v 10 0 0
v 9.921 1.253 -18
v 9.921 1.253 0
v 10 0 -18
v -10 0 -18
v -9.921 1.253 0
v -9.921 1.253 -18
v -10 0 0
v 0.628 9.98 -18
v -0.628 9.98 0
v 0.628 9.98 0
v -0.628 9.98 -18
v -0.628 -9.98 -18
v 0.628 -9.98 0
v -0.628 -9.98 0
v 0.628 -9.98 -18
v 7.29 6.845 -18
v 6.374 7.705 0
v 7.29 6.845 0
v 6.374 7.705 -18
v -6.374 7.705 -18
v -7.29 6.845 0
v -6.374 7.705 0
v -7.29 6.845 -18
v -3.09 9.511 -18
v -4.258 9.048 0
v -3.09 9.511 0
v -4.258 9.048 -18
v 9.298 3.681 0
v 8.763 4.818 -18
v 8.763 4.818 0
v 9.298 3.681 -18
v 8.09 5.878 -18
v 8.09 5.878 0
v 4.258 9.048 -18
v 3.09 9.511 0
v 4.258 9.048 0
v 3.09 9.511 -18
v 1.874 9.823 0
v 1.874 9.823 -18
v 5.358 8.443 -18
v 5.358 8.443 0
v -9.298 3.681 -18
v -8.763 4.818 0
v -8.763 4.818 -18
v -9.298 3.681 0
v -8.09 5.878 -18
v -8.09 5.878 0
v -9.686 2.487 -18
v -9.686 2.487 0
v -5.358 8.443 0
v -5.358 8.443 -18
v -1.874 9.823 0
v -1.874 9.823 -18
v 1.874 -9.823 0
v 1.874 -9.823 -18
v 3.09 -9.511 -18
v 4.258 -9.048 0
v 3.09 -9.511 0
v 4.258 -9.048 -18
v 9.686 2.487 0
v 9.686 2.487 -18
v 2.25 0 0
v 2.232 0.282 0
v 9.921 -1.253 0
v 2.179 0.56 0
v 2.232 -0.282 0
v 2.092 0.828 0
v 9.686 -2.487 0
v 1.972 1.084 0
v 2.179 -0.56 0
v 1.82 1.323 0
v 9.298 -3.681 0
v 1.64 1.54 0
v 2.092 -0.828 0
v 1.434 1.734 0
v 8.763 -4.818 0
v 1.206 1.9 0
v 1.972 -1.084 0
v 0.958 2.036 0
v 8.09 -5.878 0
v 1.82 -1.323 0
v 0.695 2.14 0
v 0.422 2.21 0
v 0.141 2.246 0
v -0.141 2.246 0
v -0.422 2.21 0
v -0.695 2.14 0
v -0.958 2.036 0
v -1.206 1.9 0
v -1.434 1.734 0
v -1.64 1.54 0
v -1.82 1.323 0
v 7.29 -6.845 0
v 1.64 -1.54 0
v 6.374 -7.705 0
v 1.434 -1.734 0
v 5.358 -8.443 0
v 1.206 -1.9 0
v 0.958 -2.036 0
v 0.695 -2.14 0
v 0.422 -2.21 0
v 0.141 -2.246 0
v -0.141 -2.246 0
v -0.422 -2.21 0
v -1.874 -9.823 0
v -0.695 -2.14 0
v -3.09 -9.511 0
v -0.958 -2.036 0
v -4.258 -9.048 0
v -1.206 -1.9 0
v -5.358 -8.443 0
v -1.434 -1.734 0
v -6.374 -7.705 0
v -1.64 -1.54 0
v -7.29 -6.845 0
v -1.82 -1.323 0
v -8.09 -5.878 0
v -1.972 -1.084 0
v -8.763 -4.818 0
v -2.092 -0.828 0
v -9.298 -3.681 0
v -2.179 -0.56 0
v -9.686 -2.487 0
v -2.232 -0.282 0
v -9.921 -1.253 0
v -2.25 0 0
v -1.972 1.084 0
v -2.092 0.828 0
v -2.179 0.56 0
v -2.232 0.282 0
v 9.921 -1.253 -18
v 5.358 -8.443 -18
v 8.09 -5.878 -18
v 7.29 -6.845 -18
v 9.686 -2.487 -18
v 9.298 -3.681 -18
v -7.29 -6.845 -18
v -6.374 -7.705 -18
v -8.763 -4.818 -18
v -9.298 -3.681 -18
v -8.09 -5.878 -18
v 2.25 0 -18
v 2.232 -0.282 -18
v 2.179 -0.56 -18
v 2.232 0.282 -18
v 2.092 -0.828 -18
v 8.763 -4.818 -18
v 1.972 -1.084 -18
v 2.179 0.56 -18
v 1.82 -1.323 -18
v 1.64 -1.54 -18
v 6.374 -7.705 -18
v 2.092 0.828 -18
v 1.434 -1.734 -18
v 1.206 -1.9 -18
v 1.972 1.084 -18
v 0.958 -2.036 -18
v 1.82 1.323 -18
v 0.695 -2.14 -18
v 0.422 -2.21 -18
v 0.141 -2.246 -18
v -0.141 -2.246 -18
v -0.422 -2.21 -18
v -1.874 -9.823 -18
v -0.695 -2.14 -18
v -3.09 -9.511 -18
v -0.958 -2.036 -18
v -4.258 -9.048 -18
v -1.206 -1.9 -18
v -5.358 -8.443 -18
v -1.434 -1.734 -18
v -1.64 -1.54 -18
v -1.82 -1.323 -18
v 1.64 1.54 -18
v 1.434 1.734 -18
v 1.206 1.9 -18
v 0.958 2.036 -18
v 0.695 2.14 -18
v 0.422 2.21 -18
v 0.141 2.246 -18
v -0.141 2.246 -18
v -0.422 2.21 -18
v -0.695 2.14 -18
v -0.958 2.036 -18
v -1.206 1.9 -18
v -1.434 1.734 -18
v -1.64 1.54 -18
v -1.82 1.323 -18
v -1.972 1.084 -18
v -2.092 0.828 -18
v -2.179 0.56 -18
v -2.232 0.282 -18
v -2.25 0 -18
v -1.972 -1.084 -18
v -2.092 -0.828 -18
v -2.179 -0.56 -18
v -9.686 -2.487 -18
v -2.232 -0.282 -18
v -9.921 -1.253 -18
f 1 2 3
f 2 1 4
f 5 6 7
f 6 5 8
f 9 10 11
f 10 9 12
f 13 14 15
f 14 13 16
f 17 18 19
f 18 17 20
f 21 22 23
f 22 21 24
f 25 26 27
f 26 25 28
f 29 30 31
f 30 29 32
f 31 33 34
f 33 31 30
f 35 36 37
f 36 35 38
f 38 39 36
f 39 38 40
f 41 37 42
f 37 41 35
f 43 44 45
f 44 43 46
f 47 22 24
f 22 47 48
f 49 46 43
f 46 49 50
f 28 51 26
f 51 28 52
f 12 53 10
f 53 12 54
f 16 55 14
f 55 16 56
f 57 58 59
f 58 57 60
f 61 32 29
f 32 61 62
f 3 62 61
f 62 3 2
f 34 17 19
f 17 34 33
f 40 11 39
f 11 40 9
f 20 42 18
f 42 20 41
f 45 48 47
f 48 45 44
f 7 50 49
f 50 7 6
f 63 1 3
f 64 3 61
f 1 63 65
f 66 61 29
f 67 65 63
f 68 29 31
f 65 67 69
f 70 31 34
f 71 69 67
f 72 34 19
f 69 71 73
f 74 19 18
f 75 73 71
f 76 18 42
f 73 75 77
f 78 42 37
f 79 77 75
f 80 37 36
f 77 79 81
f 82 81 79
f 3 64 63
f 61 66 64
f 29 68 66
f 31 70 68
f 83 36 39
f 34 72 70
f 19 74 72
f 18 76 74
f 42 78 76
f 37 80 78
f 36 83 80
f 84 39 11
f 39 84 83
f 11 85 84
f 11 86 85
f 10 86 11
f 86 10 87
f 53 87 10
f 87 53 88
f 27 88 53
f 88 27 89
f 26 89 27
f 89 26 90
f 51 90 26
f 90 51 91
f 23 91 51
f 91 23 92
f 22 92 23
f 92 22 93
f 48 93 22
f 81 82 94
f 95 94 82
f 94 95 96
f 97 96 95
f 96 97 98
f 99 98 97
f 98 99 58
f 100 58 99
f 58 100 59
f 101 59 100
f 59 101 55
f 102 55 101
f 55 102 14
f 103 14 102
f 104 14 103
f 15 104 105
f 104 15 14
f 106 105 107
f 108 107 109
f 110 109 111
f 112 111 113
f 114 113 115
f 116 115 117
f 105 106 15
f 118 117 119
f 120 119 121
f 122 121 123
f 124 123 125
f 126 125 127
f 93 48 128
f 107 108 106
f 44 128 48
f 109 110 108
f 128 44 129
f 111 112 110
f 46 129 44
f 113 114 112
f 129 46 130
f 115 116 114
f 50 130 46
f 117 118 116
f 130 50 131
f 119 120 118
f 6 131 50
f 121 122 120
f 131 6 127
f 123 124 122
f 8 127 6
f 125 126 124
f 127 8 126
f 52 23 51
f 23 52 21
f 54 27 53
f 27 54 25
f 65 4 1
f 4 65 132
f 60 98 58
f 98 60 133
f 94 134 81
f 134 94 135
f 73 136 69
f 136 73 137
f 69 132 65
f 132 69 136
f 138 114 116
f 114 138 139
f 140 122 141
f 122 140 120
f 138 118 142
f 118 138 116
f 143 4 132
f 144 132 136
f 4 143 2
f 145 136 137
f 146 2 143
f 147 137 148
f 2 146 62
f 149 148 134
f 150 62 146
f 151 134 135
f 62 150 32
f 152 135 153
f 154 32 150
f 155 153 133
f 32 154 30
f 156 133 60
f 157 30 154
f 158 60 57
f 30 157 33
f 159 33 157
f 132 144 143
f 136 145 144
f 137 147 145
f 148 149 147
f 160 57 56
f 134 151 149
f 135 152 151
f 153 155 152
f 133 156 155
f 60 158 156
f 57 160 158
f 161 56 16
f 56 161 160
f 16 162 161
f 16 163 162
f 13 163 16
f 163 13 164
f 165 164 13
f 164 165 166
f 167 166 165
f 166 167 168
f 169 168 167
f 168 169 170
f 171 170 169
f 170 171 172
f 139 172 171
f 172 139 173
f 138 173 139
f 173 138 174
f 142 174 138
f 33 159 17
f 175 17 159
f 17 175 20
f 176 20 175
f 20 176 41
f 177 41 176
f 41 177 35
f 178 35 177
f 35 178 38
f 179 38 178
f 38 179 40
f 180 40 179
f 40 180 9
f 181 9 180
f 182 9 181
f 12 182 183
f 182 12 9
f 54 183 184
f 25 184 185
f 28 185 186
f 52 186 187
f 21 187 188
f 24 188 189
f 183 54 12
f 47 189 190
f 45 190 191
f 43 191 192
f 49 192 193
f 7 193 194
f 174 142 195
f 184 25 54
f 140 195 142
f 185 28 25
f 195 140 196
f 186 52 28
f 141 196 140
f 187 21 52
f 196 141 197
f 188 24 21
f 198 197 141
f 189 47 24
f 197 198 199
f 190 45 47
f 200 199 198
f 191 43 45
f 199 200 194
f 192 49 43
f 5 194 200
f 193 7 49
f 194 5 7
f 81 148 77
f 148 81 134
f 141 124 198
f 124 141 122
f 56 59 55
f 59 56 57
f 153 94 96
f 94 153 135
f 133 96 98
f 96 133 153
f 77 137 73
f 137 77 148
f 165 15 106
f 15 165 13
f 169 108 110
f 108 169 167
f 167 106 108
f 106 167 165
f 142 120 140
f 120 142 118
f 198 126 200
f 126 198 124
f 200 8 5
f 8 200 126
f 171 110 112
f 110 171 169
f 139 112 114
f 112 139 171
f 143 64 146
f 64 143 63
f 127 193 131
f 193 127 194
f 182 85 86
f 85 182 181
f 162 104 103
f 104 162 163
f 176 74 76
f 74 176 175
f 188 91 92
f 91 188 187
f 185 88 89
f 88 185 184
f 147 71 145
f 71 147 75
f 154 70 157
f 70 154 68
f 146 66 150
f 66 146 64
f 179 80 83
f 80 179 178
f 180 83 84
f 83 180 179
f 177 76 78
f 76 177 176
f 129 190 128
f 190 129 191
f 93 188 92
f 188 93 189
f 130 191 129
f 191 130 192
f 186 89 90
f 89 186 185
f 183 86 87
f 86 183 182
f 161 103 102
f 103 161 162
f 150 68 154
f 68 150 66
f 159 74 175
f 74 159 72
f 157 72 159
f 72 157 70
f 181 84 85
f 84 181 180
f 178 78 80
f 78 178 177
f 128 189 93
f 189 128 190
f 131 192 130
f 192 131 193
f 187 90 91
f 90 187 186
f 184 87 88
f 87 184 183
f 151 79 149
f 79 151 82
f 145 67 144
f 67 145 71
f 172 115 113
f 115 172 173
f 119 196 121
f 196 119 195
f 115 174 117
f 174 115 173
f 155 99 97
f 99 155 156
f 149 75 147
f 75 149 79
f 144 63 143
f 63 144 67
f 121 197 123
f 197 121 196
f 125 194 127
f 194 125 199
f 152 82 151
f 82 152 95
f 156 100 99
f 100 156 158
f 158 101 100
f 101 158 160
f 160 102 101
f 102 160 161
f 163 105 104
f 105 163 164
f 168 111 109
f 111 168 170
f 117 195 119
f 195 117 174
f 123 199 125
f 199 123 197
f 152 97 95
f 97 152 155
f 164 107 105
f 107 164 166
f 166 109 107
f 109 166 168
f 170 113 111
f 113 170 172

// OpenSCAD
$fn = 50;


difference() {
	union() {
		translate(v = [0, 0, -18.0000000000]) {
			cylinder(h = 18, r = 10.0000000000);
		}
		cylinder(h = 0, r = 20.0000000000);
	}
	union() {
		#translate(v = [0, 0, -18]) {
			cylinder(h = 18, r = 2.2500000000);
		}
	}
}
